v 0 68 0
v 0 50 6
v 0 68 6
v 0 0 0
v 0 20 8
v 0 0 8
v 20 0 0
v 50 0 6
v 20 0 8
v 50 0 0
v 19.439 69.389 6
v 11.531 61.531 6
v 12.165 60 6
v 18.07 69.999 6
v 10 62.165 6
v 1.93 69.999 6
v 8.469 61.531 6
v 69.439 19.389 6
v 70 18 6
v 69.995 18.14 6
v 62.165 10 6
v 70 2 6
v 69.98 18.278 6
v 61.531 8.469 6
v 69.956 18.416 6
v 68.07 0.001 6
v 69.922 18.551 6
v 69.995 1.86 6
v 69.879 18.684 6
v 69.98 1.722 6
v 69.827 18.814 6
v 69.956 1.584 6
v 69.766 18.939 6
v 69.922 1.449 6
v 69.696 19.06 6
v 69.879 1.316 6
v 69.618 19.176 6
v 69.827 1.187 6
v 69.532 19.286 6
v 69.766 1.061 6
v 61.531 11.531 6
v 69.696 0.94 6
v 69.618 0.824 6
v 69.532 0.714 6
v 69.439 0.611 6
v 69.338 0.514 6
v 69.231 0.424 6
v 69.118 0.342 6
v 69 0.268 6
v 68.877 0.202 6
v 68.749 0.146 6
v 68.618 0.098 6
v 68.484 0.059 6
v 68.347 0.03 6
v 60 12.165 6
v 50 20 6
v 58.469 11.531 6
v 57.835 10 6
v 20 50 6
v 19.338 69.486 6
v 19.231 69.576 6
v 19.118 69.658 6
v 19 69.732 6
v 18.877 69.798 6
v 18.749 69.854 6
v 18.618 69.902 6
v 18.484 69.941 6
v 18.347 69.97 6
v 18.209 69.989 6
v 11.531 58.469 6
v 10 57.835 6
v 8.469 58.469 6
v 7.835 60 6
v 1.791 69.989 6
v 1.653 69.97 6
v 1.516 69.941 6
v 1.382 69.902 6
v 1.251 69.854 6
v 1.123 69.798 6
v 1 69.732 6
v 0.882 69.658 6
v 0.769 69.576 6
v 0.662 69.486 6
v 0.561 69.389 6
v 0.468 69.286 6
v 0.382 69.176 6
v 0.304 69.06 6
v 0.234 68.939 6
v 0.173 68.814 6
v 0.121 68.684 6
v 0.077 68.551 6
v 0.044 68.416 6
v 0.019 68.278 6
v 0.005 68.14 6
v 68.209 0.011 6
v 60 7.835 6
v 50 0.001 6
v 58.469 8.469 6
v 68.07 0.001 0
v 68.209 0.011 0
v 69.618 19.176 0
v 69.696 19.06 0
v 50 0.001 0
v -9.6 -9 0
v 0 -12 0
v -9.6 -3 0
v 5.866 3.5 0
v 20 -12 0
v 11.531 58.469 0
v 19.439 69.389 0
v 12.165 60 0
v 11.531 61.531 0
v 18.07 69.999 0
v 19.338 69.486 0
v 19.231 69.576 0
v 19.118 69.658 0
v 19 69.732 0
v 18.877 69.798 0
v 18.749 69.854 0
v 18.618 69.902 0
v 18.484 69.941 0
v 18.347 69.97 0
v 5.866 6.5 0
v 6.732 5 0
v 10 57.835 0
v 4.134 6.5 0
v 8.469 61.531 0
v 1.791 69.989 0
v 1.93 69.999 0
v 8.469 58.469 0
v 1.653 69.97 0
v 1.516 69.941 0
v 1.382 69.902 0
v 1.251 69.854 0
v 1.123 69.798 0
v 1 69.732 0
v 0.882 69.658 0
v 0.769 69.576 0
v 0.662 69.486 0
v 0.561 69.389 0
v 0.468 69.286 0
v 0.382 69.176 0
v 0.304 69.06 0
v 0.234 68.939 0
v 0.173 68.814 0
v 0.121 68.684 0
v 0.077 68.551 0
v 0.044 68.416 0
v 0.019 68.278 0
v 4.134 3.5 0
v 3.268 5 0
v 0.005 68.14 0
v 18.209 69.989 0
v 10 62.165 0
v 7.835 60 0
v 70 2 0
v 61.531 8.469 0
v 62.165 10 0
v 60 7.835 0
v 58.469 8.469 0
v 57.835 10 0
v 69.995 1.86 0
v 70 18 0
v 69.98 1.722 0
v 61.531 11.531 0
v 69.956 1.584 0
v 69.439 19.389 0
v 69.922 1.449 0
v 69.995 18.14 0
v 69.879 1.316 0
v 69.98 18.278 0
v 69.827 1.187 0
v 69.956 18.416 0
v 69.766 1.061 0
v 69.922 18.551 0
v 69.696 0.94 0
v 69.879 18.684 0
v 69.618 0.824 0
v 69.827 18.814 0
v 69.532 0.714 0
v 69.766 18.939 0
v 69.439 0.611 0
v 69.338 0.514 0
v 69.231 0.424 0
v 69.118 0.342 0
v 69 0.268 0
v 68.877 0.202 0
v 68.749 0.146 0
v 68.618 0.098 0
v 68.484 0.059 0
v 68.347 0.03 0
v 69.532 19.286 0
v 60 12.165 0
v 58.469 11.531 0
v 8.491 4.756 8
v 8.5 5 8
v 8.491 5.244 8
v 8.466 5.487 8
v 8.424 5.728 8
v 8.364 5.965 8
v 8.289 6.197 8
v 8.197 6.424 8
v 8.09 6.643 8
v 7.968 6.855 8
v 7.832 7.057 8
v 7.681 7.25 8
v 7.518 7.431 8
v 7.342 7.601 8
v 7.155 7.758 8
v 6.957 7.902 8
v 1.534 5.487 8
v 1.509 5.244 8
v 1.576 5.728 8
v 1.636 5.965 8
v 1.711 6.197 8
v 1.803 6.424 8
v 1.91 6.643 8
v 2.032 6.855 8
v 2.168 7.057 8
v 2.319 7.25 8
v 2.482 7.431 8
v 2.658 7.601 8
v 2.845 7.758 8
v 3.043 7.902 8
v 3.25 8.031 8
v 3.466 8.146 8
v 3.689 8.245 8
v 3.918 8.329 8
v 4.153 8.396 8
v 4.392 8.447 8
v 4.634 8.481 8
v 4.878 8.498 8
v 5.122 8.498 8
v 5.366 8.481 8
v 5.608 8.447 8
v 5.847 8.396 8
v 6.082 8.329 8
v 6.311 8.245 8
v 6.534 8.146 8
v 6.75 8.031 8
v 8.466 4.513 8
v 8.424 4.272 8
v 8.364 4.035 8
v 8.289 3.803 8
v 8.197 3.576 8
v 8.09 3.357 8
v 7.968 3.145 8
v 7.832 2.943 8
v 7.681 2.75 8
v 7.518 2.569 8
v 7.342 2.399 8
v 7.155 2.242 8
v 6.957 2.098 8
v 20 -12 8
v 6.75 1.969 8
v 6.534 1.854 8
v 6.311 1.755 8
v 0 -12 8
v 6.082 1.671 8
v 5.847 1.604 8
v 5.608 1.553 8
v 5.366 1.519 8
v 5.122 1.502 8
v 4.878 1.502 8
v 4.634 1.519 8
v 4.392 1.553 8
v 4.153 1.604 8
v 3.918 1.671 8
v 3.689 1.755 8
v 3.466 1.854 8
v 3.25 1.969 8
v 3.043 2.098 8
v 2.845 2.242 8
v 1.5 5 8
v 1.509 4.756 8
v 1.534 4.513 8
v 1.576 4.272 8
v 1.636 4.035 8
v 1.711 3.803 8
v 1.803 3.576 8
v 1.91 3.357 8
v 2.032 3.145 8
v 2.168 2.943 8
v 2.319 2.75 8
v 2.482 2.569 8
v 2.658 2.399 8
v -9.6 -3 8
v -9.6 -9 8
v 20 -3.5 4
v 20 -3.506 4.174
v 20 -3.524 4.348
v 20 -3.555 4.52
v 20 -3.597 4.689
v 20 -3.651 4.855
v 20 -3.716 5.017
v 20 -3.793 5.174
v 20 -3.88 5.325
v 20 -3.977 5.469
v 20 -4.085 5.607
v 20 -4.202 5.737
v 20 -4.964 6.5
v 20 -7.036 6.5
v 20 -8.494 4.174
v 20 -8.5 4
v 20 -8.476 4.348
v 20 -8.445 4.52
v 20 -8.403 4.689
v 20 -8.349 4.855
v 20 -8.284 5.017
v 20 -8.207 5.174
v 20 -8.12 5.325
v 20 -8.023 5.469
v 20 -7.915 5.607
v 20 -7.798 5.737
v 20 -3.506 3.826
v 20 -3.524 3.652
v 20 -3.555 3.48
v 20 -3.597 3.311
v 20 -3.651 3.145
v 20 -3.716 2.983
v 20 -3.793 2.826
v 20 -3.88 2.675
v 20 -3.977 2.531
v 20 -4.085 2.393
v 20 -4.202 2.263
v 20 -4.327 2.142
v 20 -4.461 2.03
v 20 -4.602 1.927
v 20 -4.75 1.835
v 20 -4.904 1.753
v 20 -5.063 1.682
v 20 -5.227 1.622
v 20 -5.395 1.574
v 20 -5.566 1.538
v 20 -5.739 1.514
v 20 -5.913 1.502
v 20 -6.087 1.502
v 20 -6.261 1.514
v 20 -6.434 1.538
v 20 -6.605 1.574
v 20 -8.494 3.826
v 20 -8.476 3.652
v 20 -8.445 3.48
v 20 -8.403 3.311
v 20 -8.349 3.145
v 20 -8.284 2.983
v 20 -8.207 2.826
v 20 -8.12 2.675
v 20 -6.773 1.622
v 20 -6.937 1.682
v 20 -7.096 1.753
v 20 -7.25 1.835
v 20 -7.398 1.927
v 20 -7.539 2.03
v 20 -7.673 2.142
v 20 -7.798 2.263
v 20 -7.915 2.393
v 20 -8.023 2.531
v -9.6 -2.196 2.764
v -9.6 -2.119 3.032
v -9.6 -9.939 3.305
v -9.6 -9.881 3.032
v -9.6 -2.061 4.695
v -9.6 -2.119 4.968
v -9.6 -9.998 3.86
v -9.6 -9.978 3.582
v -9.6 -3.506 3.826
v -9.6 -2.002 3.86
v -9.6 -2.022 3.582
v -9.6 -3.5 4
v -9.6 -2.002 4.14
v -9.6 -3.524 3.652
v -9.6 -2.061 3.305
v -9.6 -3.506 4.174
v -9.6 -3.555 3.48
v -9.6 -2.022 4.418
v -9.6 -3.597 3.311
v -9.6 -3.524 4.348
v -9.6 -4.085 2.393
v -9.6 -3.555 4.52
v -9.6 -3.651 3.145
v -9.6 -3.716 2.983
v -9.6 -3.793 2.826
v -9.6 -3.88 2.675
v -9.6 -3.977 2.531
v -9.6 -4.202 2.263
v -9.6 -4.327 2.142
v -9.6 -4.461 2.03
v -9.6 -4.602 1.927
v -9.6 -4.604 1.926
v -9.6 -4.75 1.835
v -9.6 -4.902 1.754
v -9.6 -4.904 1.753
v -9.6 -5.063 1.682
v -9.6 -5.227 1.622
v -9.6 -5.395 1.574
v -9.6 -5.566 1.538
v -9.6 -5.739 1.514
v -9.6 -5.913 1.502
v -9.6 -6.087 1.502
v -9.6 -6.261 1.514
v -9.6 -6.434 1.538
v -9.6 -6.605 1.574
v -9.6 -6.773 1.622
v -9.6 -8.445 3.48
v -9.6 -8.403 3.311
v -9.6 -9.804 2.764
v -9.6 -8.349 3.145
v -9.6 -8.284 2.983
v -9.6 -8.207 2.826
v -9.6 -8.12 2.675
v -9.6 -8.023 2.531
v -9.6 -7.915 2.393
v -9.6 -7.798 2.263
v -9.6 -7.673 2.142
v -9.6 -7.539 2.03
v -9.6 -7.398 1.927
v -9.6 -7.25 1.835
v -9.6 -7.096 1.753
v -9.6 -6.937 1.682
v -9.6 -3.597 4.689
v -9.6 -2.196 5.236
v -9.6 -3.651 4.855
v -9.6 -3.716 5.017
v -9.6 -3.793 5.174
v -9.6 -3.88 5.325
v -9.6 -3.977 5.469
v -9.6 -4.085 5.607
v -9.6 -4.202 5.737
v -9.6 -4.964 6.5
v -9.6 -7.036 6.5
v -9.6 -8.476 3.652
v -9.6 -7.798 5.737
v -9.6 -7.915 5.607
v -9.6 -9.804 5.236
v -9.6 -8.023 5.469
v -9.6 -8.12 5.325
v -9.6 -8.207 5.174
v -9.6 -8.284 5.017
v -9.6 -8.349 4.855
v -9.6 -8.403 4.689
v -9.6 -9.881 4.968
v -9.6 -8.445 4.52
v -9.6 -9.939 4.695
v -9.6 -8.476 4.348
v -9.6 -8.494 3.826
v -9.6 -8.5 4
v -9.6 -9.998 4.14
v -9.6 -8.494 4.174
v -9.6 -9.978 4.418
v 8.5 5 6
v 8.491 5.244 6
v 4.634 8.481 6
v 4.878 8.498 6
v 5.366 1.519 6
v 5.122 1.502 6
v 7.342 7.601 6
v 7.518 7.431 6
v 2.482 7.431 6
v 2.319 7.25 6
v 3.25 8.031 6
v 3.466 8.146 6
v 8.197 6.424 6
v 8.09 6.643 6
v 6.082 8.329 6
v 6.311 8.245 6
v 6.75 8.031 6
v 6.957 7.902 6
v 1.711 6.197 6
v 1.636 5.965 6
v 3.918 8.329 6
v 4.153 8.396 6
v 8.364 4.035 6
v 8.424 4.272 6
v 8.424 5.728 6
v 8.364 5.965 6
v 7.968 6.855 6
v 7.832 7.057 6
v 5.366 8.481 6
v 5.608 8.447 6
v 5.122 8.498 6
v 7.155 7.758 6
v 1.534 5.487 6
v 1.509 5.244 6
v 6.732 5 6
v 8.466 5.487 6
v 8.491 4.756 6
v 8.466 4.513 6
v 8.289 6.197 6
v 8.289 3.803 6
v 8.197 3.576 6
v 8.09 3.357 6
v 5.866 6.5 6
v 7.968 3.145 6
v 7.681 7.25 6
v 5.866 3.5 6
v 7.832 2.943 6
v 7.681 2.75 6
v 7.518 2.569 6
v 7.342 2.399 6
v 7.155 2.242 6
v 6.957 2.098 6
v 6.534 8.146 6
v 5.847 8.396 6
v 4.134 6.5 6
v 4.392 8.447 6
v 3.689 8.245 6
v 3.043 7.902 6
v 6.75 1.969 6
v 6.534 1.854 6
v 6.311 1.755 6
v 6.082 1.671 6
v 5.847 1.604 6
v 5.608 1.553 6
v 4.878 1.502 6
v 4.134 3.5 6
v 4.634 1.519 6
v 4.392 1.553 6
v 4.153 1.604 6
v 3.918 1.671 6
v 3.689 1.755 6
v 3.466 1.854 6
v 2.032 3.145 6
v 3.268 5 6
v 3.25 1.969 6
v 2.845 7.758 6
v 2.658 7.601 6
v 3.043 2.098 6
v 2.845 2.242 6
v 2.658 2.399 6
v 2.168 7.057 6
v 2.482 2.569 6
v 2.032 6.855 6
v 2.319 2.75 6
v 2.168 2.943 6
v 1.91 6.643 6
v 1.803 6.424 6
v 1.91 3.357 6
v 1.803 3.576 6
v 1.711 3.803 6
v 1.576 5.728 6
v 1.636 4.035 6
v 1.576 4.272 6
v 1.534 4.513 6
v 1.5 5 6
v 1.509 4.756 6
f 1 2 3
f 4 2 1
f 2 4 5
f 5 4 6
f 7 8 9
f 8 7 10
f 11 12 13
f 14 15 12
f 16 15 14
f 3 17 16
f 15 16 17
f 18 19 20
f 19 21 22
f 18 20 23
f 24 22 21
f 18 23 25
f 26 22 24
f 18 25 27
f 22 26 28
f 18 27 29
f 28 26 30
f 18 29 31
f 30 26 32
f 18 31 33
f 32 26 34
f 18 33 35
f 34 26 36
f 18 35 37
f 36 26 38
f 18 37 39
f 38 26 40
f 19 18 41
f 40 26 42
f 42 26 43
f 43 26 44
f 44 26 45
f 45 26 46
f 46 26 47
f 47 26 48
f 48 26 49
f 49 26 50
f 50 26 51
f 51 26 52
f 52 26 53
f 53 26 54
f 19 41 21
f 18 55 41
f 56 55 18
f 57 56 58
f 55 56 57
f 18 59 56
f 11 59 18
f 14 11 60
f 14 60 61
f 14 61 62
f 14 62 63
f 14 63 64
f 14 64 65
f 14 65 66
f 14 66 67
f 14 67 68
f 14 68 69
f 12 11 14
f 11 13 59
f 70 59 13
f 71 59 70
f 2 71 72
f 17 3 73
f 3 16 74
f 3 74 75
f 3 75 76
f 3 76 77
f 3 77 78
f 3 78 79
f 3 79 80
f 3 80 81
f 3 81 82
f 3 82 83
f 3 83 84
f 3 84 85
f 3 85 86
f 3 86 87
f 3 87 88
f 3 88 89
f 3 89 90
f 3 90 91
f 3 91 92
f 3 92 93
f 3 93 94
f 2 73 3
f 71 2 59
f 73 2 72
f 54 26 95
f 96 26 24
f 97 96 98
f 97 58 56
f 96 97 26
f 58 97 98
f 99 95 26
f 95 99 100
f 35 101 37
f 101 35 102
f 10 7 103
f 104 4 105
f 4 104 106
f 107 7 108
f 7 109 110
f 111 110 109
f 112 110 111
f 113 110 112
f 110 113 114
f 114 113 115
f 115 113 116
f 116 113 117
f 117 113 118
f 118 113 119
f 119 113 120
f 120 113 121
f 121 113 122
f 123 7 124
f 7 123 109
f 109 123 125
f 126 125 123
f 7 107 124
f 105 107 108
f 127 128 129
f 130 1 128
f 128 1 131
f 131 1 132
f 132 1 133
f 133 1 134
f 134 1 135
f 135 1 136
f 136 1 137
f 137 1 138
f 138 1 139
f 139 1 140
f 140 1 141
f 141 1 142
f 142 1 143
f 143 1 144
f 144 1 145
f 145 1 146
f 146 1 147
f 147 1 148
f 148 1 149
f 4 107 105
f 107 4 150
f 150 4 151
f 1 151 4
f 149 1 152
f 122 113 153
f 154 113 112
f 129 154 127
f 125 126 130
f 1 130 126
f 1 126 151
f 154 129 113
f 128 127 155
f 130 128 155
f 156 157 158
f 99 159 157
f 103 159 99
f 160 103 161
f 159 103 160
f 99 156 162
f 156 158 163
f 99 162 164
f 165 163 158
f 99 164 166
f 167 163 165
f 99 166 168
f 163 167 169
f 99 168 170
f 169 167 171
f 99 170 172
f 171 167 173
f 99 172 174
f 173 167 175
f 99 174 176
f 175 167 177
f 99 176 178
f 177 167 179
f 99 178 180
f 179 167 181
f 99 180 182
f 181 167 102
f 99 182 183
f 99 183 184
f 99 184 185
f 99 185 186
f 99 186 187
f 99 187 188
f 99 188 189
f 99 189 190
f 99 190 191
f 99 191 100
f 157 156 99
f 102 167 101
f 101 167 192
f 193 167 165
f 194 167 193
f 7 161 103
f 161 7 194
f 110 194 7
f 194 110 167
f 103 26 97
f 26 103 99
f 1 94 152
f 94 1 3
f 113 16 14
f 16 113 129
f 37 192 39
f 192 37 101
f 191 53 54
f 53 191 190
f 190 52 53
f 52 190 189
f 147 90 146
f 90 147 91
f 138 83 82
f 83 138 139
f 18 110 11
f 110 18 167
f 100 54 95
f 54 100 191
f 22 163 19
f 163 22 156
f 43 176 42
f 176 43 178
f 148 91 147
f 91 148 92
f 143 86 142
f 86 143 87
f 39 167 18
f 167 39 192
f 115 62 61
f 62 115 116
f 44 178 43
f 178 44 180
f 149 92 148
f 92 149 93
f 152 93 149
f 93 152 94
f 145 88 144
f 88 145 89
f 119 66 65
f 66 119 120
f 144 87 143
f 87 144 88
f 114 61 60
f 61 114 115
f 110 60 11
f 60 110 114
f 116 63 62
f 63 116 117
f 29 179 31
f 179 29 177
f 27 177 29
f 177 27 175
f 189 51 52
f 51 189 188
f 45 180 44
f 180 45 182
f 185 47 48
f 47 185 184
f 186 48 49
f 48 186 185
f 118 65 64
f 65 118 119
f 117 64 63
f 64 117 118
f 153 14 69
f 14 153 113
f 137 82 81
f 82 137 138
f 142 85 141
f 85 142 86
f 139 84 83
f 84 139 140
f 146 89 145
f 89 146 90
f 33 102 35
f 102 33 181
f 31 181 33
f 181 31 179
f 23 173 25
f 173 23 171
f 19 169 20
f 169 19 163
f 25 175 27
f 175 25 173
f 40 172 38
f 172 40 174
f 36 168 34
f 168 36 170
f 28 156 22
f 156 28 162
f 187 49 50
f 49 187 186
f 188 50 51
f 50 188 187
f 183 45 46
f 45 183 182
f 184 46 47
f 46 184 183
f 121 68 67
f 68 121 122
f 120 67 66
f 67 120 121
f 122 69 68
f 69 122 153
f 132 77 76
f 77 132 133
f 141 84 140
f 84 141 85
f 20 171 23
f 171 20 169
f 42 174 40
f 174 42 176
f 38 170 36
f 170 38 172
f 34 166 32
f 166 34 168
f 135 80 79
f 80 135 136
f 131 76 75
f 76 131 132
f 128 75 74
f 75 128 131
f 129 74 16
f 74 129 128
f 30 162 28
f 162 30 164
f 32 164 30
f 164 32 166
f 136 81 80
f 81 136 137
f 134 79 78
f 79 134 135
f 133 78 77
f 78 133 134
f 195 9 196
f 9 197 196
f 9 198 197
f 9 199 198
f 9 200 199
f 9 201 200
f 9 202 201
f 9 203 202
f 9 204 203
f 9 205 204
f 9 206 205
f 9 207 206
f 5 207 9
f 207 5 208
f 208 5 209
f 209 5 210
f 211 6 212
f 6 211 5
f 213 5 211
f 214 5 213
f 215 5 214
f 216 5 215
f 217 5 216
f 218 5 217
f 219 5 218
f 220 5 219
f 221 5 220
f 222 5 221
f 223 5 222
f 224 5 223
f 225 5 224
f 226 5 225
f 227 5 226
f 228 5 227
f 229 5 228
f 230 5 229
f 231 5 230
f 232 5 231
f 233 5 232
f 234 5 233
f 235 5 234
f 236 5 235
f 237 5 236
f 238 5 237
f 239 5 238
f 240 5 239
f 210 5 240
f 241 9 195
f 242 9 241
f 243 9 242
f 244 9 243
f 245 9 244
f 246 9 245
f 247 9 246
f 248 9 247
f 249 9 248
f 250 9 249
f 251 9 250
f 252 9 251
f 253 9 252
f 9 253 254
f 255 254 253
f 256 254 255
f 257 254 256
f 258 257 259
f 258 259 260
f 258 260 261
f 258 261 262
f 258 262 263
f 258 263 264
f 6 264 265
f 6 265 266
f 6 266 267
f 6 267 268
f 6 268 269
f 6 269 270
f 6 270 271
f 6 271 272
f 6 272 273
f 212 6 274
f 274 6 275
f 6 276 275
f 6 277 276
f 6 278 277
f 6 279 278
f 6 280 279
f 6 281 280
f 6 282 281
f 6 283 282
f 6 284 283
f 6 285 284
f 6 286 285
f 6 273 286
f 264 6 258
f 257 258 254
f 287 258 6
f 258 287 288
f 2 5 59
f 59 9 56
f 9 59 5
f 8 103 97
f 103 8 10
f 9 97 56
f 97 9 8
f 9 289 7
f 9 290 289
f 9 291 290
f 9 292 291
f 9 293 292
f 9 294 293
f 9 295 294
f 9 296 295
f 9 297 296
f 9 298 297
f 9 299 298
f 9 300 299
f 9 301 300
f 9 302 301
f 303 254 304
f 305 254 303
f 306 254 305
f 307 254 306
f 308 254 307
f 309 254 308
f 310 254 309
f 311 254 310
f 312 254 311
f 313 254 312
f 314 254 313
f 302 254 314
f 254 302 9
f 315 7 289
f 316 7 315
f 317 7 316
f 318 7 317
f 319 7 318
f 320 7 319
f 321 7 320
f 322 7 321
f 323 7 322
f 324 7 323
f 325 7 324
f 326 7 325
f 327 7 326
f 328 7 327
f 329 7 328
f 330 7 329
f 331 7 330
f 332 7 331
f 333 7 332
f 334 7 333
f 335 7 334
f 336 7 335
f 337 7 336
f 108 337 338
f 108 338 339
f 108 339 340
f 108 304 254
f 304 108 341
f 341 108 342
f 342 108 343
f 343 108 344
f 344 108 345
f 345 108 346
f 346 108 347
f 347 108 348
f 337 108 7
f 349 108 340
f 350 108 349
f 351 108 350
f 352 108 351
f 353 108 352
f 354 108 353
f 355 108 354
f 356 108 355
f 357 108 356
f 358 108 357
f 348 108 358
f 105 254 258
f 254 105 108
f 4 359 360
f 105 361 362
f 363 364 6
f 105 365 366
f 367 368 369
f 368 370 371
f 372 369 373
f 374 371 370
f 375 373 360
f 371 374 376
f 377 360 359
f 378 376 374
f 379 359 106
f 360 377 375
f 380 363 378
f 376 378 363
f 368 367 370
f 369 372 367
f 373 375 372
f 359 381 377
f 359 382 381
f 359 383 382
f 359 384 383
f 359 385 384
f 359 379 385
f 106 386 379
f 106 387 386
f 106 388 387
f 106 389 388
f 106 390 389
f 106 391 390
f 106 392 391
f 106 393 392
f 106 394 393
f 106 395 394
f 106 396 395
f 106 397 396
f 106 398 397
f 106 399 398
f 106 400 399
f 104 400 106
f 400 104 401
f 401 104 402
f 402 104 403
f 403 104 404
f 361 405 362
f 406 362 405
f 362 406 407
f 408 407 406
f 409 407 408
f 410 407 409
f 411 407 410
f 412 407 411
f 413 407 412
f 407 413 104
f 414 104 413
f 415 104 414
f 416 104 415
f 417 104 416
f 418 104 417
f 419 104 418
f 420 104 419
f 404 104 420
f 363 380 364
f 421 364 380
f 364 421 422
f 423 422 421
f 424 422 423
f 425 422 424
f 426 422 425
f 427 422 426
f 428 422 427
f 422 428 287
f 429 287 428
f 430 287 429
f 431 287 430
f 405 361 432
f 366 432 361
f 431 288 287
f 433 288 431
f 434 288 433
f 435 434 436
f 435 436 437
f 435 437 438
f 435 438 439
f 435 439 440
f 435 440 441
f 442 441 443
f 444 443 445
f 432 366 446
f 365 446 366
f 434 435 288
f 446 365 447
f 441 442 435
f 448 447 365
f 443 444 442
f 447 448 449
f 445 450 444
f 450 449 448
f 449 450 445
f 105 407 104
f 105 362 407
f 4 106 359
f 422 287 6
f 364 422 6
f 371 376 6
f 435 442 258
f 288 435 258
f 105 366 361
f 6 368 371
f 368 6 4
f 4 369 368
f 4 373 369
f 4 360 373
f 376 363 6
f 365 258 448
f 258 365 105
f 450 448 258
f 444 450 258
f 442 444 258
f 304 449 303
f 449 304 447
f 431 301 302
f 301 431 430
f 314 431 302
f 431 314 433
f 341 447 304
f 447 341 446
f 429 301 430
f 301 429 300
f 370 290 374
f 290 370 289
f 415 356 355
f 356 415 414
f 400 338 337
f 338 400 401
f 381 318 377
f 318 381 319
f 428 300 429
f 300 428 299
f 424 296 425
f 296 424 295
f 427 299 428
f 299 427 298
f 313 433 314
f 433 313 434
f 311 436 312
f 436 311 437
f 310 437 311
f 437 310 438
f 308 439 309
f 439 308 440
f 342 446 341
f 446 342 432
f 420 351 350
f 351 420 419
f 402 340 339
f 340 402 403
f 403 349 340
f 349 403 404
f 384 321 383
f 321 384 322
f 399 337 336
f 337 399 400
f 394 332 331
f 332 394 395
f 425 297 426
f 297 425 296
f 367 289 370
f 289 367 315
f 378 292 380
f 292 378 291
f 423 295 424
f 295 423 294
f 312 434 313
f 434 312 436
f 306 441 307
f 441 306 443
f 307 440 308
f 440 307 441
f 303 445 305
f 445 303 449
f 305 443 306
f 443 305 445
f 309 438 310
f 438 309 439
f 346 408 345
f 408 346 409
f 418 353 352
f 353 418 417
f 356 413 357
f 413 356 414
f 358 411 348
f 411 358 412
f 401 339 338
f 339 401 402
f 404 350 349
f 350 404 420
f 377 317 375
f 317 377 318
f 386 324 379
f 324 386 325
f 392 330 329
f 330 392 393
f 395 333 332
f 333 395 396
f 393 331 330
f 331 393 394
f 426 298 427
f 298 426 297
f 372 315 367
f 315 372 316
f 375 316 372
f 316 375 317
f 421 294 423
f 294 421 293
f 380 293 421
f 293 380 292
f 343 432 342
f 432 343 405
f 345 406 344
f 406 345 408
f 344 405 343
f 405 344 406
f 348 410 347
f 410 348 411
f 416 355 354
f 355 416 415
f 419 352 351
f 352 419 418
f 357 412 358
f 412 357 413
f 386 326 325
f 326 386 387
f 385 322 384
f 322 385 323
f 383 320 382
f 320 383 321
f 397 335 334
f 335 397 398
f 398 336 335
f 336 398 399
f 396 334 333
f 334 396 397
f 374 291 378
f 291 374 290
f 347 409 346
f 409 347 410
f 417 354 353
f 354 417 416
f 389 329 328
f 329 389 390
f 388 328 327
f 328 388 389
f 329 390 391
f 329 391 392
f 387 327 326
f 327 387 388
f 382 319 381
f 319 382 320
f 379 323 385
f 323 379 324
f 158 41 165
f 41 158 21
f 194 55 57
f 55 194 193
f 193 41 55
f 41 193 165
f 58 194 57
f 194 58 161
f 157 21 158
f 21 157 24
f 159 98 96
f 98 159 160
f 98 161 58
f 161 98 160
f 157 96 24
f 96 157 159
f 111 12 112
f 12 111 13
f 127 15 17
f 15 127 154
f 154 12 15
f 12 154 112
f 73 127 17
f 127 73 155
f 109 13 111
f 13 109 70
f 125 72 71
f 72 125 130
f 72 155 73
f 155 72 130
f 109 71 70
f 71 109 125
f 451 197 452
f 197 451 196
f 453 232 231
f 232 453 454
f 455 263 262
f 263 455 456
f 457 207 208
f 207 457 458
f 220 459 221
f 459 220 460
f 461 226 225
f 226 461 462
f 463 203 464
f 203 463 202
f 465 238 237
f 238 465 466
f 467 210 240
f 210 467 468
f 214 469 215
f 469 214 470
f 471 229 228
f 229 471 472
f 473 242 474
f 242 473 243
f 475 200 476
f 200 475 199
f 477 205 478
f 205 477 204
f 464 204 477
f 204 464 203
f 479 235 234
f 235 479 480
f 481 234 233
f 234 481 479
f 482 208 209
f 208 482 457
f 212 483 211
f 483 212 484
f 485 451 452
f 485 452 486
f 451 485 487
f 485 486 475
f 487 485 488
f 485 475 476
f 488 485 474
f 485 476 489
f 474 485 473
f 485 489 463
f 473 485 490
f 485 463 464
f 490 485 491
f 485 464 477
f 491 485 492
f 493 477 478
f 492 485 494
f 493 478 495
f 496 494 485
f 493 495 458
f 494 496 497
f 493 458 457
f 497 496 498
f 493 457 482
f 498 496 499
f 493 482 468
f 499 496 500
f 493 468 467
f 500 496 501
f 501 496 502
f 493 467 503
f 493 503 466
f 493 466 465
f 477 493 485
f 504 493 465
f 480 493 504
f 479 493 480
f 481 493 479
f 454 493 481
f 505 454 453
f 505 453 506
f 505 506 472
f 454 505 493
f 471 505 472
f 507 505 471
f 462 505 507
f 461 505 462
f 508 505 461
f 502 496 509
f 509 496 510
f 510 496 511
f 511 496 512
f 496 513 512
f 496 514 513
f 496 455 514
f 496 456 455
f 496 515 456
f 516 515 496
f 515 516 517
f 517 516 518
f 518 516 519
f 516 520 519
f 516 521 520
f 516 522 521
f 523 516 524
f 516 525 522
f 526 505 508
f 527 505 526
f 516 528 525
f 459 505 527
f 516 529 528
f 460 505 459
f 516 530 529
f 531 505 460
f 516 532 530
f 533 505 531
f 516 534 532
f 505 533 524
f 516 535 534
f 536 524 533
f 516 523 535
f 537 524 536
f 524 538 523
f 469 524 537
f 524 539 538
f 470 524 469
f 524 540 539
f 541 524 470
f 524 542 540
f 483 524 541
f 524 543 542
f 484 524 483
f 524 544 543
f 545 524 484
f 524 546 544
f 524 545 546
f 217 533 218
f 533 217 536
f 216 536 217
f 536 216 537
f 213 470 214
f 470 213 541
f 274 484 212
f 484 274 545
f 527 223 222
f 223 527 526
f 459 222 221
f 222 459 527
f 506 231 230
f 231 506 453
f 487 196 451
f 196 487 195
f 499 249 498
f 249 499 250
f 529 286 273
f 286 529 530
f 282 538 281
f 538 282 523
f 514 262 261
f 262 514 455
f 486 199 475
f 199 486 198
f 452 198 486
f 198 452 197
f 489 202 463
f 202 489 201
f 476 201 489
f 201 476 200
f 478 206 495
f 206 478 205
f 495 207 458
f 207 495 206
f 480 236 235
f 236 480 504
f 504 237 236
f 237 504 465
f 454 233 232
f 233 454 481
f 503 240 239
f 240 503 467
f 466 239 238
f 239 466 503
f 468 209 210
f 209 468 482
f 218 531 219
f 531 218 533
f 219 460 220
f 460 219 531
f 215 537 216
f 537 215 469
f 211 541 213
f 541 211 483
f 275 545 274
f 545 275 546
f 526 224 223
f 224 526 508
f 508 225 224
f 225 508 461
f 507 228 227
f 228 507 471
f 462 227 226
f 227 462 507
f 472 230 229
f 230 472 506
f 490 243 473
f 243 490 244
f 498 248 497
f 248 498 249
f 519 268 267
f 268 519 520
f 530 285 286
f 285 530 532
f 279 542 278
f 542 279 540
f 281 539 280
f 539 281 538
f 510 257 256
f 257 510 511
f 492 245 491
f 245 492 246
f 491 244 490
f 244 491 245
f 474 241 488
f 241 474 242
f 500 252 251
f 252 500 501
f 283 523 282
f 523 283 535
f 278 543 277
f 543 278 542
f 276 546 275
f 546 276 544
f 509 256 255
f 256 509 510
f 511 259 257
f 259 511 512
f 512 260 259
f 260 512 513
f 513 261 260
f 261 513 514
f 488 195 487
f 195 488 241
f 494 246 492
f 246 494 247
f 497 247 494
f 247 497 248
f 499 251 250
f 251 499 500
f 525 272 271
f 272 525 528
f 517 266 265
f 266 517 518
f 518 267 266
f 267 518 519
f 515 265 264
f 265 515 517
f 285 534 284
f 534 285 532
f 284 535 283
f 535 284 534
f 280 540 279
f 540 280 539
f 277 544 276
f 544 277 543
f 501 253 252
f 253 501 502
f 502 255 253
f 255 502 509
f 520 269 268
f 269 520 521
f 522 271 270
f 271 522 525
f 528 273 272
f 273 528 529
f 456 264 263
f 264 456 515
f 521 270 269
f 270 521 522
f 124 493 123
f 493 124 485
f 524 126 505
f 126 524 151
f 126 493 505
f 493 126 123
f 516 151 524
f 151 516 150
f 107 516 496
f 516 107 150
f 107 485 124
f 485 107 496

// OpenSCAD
// file: trunctear.scad
//A module for truncated tear drops.

trunctear(1, 0.5, 90);

module trunctear(height, radian, fn)
{
    hull()
    {
        cylinder(h = height, r = radian,$fn = fn);
        translate([0, radian/2, height/2])
            cube([2*(radian*(2*cos(45)-1)), radian, height], center = true);
    }
}
// file: polyhole.scad
// The Cylinder is dead! Long live the Cylinder!
// A module for a polyhole by radius, based on Nophead's work.

module polyhole(h, r, cent = false)
{
    n = max(round(4 * r), 3);
    cylinder(h = h, r = r / cos(180 / n), $fn = n, center = cent);
}
// main file
// A corner mount for the bed, which uses one V wheel. Uses 40mm m5 bolts to mount the wheels

use<polyhole.scad>
use<trunctear.scad>

BedMount();

module BedMount()
{
    difference()
    {
        union()
        {
            hull()
            {
                translate([10, 10, 3])
                    cube([20, 20, 6], center = true);
                translate([68, 2, 0])
                    cylinder(h = 6, r = 2, $fn = 90);
                translate([68, 18, 0])
                    cylinder(h = 6, r = 2, $fn = 90);
                translate([2, 68, 0])
                    cylinder(h = 6, r = 2, $fn = 90);
                translate([18, 68, 0])
                    cylinder(h = 6, r = 2, $fn = 90);
            }
            hull()
            {
                linear_extrude(height = 8)
                    polygon([[0, 0], [20, 0], [0, 20]]);
                linear_extrude(height = 6)
                    polygon([[0, 0], [50, 0], [50, 20], [20, 50], [0, 50]]);
            }
            hull()
            {
                hull()
                {
                    dist = 5; //distance from edge of bed to v slot extrusion
                    translate([-dist, -6, 1])
                        cube([(10-5.40)*2, 6, 2], center = true);
                    translate([-dist, -6, 4])
                        rotate([0, 90, 0])
                            cylinder(h = (10-5.40)*2, r = 4, $fn = 90, center = true);
                    translate([-dist, -6, 7])
                        cube([(10-5.40)*2, 6, 2], center = true);
                }
                linear_extrude(height = 8)
                    polygon([[0, -12], [20, -12], [20, 0], [0, 0]]);
            }
        }
        translate([20, -6, 4])
            rotate([90, 0, -90])
                trunctear(30, 2.5, 90);
        translate([60, 10, 0])
            polyhole(6, 2);
        translate([10, 60, 0])
            polyhole(6, 2);
        translate([5, 5, 6])
            cylinder(h = 2, r = 3.5, $fn = 90);
        translate([5, 5, 0])
            polyhole(6, 1.5);
    }
}
